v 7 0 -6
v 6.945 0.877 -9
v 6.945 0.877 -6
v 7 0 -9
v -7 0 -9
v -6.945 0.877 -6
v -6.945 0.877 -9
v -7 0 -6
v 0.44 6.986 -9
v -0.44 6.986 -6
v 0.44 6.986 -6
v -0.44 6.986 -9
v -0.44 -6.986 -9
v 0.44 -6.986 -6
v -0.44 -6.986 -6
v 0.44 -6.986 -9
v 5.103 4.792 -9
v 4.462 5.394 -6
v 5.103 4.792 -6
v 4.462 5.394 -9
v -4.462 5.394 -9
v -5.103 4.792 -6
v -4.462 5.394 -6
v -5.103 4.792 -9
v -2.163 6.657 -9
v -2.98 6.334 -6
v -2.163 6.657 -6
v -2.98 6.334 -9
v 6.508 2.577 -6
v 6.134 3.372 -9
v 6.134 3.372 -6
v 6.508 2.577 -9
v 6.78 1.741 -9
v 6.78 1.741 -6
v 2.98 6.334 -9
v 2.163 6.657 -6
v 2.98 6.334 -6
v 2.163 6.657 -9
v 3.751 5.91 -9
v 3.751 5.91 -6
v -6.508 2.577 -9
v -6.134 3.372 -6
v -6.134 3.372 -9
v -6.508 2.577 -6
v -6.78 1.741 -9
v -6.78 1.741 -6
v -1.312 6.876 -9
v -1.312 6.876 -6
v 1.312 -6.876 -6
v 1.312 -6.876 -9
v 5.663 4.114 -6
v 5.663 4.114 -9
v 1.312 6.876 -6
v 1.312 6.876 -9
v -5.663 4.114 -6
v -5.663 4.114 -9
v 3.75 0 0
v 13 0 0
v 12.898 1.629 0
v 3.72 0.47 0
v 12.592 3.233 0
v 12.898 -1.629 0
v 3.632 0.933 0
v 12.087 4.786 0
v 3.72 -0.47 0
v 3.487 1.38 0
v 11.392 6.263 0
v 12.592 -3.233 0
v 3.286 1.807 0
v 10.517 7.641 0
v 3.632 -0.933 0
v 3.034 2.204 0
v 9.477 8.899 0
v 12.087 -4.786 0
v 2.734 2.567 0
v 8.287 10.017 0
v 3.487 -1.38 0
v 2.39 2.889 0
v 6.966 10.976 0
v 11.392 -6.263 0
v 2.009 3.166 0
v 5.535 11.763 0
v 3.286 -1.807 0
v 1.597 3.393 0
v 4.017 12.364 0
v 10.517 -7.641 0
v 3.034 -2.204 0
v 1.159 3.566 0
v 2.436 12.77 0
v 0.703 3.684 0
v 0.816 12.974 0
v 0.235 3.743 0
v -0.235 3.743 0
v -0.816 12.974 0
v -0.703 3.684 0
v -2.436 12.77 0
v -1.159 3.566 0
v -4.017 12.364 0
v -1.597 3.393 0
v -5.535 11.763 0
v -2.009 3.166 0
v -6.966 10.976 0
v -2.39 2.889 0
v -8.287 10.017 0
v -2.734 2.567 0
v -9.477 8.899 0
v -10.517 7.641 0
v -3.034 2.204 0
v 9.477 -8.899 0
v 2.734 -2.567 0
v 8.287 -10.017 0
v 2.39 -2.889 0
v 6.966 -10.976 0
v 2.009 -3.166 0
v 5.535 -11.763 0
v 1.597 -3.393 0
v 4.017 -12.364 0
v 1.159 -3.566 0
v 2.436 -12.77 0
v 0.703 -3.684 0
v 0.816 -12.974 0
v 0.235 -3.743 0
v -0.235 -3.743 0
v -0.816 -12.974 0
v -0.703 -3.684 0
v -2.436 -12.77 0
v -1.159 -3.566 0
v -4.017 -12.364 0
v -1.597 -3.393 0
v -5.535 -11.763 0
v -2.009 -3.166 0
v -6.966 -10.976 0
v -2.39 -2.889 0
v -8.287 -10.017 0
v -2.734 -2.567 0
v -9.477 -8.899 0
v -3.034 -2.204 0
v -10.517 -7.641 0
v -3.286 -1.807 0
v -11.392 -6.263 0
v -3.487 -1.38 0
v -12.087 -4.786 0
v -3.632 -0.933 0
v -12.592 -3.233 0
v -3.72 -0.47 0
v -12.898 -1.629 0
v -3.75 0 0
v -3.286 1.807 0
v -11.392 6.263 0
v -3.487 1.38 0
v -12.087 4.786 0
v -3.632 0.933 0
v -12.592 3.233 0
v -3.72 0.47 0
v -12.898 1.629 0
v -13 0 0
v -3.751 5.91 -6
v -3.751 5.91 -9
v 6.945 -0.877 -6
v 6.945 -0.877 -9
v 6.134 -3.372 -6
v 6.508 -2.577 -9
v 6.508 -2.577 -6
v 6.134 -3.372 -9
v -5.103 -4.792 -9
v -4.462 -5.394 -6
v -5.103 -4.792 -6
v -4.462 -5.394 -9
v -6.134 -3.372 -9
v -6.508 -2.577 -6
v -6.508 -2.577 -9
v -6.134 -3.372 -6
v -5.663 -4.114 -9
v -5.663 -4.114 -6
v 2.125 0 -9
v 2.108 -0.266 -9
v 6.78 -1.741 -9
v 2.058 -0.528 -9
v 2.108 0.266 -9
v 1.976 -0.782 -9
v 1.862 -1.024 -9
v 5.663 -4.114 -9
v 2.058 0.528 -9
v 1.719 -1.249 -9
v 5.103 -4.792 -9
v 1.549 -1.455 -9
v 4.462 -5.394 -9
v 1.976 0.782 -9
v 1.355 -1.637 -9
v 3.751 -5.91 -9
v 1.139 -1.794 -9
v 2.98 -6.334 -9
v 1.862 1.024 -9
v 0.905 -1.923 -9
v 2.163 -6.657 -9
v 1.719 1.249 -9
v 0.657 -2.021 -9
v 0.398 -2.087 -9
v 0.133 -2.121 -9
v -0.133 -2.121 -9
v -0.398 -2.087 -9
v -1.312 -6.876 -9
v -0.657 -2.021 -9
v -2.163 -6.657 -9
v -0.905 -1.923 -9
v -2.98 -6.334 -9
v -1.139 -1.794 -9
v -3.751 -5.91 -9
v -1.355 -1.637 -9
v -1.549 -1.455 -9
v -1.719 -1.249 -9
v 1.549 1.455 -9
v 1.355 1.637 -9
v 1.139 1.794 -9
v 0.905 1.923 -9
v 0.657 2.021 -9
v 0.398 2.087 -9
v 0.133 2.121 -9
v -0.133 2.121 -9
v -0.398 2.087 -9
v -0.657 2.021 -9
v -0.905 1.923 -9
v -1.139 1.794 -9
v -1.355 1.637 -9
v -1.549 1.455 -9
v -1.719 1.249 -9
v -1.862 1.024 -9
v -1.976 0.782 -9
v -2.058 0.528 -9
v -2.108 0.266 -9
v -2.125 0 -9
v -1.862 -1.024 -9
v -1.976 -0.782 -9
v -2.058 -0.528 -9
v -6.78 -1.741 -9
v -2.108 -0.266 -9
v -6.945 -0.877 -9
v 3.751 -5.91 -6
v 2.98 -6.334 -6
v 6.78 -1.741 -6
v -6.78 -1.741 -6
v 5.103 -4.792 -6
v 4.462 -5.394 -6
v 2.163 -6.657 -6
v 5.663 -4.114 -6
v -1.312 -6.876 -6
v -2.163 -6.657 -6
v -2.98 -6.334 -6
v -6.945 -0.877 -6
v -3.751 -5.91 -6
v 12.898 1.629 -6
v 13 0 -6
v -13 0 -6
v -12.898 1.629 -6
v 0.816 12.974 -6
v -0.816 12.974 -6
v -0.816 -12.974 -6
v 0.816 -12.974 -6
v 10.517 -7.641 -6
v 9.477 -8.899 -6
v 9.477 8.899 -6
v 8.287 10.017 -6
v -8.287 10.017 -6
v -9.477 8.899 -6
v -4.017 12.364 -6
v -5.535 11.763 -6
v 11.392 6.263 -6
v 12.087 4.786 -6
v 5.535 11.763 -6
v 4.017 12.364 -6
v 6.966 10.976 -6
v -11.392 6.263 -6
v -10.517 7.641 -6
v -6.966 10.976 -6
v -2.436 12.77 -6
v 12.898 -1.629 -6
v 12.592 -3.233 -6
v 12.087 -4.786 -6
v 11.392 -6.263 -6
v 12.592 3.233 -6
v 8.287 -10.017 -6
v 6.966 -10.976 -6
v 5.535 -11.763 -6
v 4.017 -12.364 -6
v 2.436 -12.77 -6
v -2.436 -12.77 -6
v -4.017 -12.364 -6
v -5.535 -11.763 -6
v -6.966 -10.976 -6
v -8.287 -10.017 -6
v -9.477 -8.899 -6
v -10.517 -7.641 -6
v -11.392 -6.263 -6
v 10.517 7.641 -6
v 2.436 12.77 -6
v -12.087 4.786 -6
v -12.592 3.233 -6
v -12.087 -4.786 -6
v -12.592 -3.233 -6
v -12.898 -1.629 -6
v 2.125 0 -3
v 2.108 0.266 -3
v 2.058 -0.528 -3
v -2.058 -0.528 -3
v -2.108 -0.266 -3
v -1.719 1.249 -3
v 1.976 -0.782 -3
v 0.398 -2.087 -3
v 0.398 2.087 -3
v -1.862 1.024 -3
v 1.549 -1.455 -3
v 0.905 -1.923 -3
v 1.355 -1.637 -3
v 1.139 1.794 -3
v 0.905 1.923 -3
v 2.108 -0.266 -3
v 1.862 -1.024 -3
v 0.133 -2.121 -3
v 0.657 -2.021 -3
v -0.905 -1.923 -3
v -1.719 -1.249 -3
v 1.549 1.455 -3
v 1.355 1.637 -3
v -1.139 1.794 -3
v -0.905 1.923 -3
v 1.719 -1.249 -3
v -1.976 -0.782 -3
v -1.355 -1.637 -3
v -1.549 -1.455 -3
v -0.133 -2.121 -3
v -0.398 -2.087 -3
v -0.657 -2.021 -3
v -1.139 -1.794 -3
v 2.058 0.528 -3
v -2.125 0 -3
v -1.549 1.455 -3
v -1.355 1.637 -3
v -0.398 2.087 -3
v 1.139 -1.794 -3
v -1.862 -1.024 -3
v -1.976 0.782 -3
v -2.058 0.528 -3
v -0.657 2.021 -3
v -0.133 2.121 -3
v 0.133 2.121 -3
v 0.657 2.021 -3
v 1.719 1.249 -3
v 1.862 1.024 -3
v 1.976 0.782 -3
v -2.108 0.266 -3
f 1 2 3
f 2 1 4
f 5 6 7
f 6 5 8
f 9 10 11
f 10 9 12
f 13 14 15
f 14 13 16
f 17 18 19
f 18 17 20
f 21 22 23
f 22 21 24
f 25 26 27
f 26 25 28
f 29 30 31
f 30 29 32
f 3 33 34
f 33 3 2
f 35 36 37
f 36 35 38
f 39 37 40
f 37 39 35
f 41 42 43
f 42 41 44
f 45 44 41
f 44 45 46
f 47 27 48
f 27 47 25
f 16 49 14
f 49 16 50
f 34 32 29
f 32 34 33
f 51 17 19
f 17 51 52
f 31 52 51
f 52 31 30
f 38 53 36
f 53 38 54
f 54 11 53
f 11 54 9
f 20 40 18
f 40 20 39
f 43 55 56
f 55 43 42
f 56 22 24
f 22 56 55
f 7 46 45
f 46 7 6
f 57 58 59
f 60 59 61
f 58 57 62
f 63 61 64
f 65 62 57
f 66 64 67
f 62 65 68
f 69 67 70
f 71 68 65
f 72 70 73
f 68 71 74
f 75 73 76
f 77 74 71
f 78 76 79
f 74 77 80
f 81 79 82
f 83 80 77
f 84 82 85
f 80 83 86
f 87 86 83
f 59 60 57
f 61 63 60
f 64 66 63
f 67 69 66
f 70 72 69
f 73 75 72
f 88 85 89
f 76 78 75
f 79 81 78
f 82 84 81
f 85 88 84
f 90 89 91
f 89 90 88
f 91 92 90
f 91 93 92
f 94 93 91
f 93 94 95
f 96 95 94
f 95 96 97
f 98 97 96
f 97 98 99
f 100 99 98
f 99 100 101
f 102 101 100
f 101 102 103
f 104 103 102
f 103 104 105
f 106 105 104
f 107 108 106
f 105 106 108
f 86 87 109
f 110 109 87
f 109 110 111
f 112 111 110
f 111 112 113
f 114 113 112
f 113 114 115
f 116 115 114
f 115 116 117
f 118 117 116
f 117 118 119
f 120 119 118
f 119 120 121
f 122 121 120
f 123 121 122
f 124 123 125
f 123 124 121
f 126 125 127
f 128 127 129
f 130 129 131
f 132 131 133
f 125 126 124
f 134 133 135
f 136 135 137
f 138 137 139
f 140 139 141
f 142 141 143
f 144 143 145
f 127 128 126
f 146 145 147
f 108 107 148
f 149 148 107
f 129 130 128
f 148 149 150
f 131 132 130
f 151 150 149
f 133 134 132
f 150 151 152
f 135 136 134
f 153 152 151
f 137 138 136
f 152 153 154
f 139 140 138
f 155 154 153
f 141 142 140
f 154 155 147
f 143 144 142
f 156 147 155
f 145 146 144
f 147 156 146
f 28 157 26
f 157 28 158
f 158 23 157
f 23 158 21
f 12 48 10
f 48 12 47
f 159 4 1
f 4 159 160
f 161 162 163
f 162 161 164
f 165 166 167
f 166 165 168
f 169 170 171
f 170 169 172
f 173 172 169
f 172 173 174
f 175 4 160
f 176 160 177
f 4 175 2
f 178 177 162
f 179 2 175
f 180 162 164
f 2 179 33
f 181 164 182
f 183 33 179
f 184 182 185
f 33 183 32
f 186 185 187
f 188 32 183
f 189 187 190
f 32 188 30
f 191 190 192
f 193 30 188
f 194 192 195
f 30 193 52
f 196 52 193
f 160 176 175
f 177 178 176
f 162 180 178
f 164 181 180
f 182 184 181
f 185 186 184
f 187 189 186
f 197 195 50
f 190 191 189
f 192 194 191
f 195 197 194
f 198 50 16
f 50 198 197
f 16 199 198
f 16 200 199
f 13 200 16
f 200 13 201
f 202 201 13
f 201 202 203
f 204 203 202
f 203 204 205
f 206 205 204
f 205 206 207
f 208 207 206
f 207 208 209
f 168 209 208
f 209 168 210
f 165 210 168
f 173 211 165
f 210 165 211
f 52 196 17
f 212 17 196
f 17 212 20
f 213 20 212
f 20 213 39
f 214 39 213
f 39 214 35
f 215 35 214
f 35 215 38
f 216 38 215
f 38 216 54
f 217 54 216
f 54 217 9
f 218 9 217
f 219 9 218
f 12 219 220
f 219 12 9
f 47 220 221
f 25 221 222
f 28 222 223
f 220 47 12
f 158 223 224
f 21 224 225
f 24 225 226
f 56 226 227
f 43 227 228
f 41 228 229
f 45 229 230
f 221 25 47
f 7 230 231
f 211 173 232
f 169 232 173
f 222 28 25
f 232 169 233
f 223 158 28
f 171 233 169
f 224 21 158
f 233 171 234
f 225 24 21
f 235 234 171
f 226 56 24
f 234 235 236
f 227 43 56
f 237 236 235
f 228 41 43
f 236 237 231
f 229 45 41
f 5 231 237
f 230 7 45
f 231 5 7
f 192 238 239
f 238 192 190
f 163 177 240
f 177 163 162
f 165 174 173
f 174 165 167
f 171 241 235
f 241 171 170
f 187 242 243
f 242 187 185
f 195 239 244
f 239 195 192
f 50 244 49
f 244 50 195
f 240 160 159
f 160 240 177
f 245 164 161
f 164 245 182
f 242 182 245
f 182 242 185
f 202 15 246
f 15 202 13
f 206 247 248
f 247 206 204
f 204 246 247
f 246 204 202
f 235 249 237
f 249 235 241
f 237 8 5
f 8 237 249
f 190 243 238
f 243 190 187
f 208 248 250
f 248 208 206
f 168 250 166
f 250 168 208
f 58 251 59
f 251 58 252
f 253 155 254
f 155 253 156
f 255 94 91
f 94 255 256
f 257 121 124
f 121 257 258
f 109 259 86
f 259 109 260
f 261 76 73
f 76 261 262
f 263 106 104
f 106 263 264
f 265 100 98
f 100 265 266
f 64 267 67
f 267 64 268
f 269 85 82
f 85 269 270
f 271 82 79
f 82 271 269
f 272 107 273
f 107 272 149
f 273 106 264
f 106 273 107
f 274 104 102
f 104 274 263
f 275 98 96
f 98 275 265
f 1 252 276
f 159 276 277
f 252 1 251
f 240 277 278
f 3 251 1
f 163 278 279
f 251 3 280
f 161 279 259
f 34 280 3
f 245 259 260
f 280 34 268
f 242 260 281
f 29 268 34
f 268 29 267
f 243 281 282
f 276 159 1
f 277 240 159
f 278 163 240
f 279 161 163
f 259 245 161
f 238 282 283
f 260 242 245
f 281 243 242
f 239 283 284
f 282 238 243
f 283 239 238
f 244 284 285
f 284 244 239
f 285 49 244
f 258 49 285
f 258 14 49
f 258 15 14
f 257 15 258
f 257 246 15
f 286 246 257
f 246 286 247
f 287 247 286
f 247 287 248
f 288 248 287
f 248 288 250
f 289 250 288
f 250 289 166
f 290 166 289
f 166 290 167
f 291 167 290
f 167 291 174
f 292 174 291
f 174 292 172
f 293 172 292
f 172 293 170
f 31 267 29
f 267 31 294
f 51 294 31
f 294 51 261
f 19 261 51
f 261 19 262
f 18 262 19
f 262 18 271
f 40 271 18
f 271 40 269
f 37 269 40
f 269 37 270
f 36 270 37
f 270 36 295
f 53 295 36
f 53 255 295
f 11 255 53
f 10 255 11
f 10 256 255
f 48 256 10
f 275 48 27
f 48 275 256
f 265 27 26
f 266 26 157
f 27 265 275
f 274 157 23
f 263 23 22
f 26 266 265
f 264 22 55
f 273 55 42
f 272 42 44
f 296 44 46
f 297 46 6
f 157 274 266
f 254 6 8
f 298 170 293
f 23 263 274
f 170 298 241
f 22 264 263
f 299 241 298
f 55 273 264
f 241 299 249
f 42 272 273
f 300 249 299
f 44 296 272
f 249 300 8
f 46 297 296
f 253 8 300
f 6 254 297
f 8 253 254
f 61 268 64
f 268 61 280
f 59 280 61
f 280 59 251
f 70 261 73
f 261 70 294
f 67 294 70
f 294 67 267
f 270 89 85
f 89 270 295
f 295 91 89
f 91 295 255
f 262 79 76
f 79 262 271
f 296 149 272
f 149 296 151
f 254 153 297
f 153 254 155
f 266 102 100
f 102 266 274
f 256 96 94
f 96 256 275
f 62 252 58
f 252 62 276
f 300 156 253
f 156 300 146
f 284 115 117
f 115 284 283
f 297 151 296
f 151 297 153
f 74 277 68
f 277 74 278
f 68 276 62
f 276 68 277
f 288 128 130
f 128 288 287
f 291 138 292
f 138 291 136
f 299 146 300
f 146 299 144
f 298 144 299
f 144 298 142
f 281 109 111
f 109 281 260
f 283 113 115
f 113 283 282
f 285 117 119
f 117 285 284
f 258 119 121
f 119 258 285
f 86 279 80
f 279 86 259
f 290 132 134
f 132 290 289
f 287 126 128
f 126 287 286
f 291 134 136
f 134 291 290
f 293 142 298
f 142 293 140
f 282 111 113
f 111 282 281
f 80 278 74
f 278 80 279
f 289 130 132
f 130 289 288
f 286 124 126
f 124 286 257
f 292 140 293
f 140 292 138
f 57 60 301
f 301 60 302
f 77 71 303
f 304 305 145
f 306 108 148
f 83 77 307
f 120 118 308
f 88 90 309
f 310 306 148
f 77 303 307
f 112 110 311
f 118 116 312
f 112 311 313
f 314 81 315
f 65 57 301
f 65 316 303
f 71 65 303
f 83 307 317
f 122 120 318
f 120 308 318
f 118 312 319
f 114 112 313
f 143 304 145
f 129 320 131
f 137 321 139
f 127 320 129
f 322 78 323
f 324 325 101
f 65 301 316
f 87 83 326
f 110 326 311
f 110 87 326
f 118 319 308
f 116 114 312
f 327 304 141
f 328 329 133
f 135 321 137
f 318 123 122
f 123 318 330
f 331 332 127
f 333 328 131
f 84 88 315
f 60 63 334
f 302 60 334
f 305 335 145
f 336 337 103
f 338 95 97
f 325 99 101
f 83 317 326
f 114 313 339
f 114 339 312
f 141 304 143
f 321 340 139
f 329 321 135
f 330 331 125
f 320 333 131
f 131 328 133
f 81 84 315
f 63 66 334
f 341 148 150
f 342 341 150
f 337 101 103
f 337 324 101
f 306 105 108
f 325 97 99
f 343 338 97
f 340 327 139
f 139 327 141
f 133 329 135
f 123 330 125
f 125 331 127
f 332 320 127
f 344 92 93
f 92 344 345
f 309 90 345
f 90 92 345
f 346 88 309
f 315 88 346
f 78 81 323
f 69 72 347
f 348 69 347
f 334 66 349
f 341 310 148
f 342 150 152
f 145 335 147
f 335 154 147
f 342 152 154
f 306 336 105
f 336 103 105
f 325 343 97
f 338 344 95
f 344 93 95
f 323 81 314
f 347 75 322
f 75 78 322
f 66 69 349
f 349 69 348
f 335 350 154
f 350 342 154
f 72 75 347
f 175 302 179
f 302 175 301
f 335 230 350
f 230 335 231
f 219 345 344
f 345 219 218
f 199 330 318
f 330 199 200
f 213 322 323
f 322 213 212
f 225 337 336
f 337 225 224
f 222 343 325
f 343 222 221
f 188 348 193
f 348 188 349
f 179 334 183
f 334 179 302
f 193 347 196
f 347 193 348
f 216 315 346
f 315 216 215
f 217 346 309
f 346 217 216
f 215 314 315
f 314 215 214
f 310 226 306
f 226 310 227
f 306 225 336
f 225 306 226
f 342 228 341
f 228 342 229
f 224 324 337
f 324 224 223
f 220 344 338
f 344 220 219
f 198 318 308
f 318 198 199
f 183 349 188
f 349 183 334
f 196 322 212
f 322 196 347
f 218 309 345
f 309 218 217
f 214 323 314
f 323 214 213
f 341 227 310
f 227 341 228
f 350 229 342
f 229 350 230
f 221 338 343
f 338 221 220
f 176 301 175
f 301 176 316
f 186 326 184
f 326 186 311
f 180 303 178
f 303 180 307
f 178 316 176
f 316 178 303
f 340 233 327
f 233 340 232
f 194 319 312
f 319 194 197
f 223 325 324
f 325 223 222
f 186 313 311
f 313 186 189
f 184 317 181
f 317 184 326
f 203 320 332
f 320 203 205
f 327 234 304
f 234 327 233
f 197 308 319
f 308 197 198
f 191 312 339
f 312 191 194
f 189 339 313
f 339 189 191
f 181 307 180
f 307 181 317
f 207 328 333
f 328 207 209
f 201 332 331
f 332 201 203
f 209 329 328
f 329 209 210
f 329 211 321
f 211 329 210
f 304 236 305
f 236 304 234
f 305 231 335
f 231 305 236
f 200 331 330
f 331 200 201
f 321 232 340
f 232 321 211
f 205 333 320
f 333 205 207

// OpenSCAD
$fn = 50;


difference() {
	union() {
		translate(v = [0, 0, -9.0000000000]) {
			cylinder(h = 9, r = 7.0000000000);
		}
		translate(v = [0, 0, -6.0000000000]) {
			cylinder(h = 6, r = 13.0000000000);
		}
	}
	union() {
		translate(v = [0, 0, 0]) {
			rotate(a = [0, 0, 0]) {
				difference() {
					union() {
						#translate(v = [0, 0, -9.0000000000]) {
							cylinder(h = 9, r = 2.0000000000);
						}
						#translate(v = [0, 0, -3]) {
							cylinder(h = 3, r1 = 2.1250000000, r2 = 3.7500000000);
						}
						#translate(v = [0, 0, -9.0000000000]) {
							cylinder(h = 9, r = 2.1250000000);
						}
						#translate(v = [0, 0, -9.0000000000]) {
							cylinder(h = 9, r = 2.0000000000);
						}
					}
					union();
				}
			}
		}
	}
}
